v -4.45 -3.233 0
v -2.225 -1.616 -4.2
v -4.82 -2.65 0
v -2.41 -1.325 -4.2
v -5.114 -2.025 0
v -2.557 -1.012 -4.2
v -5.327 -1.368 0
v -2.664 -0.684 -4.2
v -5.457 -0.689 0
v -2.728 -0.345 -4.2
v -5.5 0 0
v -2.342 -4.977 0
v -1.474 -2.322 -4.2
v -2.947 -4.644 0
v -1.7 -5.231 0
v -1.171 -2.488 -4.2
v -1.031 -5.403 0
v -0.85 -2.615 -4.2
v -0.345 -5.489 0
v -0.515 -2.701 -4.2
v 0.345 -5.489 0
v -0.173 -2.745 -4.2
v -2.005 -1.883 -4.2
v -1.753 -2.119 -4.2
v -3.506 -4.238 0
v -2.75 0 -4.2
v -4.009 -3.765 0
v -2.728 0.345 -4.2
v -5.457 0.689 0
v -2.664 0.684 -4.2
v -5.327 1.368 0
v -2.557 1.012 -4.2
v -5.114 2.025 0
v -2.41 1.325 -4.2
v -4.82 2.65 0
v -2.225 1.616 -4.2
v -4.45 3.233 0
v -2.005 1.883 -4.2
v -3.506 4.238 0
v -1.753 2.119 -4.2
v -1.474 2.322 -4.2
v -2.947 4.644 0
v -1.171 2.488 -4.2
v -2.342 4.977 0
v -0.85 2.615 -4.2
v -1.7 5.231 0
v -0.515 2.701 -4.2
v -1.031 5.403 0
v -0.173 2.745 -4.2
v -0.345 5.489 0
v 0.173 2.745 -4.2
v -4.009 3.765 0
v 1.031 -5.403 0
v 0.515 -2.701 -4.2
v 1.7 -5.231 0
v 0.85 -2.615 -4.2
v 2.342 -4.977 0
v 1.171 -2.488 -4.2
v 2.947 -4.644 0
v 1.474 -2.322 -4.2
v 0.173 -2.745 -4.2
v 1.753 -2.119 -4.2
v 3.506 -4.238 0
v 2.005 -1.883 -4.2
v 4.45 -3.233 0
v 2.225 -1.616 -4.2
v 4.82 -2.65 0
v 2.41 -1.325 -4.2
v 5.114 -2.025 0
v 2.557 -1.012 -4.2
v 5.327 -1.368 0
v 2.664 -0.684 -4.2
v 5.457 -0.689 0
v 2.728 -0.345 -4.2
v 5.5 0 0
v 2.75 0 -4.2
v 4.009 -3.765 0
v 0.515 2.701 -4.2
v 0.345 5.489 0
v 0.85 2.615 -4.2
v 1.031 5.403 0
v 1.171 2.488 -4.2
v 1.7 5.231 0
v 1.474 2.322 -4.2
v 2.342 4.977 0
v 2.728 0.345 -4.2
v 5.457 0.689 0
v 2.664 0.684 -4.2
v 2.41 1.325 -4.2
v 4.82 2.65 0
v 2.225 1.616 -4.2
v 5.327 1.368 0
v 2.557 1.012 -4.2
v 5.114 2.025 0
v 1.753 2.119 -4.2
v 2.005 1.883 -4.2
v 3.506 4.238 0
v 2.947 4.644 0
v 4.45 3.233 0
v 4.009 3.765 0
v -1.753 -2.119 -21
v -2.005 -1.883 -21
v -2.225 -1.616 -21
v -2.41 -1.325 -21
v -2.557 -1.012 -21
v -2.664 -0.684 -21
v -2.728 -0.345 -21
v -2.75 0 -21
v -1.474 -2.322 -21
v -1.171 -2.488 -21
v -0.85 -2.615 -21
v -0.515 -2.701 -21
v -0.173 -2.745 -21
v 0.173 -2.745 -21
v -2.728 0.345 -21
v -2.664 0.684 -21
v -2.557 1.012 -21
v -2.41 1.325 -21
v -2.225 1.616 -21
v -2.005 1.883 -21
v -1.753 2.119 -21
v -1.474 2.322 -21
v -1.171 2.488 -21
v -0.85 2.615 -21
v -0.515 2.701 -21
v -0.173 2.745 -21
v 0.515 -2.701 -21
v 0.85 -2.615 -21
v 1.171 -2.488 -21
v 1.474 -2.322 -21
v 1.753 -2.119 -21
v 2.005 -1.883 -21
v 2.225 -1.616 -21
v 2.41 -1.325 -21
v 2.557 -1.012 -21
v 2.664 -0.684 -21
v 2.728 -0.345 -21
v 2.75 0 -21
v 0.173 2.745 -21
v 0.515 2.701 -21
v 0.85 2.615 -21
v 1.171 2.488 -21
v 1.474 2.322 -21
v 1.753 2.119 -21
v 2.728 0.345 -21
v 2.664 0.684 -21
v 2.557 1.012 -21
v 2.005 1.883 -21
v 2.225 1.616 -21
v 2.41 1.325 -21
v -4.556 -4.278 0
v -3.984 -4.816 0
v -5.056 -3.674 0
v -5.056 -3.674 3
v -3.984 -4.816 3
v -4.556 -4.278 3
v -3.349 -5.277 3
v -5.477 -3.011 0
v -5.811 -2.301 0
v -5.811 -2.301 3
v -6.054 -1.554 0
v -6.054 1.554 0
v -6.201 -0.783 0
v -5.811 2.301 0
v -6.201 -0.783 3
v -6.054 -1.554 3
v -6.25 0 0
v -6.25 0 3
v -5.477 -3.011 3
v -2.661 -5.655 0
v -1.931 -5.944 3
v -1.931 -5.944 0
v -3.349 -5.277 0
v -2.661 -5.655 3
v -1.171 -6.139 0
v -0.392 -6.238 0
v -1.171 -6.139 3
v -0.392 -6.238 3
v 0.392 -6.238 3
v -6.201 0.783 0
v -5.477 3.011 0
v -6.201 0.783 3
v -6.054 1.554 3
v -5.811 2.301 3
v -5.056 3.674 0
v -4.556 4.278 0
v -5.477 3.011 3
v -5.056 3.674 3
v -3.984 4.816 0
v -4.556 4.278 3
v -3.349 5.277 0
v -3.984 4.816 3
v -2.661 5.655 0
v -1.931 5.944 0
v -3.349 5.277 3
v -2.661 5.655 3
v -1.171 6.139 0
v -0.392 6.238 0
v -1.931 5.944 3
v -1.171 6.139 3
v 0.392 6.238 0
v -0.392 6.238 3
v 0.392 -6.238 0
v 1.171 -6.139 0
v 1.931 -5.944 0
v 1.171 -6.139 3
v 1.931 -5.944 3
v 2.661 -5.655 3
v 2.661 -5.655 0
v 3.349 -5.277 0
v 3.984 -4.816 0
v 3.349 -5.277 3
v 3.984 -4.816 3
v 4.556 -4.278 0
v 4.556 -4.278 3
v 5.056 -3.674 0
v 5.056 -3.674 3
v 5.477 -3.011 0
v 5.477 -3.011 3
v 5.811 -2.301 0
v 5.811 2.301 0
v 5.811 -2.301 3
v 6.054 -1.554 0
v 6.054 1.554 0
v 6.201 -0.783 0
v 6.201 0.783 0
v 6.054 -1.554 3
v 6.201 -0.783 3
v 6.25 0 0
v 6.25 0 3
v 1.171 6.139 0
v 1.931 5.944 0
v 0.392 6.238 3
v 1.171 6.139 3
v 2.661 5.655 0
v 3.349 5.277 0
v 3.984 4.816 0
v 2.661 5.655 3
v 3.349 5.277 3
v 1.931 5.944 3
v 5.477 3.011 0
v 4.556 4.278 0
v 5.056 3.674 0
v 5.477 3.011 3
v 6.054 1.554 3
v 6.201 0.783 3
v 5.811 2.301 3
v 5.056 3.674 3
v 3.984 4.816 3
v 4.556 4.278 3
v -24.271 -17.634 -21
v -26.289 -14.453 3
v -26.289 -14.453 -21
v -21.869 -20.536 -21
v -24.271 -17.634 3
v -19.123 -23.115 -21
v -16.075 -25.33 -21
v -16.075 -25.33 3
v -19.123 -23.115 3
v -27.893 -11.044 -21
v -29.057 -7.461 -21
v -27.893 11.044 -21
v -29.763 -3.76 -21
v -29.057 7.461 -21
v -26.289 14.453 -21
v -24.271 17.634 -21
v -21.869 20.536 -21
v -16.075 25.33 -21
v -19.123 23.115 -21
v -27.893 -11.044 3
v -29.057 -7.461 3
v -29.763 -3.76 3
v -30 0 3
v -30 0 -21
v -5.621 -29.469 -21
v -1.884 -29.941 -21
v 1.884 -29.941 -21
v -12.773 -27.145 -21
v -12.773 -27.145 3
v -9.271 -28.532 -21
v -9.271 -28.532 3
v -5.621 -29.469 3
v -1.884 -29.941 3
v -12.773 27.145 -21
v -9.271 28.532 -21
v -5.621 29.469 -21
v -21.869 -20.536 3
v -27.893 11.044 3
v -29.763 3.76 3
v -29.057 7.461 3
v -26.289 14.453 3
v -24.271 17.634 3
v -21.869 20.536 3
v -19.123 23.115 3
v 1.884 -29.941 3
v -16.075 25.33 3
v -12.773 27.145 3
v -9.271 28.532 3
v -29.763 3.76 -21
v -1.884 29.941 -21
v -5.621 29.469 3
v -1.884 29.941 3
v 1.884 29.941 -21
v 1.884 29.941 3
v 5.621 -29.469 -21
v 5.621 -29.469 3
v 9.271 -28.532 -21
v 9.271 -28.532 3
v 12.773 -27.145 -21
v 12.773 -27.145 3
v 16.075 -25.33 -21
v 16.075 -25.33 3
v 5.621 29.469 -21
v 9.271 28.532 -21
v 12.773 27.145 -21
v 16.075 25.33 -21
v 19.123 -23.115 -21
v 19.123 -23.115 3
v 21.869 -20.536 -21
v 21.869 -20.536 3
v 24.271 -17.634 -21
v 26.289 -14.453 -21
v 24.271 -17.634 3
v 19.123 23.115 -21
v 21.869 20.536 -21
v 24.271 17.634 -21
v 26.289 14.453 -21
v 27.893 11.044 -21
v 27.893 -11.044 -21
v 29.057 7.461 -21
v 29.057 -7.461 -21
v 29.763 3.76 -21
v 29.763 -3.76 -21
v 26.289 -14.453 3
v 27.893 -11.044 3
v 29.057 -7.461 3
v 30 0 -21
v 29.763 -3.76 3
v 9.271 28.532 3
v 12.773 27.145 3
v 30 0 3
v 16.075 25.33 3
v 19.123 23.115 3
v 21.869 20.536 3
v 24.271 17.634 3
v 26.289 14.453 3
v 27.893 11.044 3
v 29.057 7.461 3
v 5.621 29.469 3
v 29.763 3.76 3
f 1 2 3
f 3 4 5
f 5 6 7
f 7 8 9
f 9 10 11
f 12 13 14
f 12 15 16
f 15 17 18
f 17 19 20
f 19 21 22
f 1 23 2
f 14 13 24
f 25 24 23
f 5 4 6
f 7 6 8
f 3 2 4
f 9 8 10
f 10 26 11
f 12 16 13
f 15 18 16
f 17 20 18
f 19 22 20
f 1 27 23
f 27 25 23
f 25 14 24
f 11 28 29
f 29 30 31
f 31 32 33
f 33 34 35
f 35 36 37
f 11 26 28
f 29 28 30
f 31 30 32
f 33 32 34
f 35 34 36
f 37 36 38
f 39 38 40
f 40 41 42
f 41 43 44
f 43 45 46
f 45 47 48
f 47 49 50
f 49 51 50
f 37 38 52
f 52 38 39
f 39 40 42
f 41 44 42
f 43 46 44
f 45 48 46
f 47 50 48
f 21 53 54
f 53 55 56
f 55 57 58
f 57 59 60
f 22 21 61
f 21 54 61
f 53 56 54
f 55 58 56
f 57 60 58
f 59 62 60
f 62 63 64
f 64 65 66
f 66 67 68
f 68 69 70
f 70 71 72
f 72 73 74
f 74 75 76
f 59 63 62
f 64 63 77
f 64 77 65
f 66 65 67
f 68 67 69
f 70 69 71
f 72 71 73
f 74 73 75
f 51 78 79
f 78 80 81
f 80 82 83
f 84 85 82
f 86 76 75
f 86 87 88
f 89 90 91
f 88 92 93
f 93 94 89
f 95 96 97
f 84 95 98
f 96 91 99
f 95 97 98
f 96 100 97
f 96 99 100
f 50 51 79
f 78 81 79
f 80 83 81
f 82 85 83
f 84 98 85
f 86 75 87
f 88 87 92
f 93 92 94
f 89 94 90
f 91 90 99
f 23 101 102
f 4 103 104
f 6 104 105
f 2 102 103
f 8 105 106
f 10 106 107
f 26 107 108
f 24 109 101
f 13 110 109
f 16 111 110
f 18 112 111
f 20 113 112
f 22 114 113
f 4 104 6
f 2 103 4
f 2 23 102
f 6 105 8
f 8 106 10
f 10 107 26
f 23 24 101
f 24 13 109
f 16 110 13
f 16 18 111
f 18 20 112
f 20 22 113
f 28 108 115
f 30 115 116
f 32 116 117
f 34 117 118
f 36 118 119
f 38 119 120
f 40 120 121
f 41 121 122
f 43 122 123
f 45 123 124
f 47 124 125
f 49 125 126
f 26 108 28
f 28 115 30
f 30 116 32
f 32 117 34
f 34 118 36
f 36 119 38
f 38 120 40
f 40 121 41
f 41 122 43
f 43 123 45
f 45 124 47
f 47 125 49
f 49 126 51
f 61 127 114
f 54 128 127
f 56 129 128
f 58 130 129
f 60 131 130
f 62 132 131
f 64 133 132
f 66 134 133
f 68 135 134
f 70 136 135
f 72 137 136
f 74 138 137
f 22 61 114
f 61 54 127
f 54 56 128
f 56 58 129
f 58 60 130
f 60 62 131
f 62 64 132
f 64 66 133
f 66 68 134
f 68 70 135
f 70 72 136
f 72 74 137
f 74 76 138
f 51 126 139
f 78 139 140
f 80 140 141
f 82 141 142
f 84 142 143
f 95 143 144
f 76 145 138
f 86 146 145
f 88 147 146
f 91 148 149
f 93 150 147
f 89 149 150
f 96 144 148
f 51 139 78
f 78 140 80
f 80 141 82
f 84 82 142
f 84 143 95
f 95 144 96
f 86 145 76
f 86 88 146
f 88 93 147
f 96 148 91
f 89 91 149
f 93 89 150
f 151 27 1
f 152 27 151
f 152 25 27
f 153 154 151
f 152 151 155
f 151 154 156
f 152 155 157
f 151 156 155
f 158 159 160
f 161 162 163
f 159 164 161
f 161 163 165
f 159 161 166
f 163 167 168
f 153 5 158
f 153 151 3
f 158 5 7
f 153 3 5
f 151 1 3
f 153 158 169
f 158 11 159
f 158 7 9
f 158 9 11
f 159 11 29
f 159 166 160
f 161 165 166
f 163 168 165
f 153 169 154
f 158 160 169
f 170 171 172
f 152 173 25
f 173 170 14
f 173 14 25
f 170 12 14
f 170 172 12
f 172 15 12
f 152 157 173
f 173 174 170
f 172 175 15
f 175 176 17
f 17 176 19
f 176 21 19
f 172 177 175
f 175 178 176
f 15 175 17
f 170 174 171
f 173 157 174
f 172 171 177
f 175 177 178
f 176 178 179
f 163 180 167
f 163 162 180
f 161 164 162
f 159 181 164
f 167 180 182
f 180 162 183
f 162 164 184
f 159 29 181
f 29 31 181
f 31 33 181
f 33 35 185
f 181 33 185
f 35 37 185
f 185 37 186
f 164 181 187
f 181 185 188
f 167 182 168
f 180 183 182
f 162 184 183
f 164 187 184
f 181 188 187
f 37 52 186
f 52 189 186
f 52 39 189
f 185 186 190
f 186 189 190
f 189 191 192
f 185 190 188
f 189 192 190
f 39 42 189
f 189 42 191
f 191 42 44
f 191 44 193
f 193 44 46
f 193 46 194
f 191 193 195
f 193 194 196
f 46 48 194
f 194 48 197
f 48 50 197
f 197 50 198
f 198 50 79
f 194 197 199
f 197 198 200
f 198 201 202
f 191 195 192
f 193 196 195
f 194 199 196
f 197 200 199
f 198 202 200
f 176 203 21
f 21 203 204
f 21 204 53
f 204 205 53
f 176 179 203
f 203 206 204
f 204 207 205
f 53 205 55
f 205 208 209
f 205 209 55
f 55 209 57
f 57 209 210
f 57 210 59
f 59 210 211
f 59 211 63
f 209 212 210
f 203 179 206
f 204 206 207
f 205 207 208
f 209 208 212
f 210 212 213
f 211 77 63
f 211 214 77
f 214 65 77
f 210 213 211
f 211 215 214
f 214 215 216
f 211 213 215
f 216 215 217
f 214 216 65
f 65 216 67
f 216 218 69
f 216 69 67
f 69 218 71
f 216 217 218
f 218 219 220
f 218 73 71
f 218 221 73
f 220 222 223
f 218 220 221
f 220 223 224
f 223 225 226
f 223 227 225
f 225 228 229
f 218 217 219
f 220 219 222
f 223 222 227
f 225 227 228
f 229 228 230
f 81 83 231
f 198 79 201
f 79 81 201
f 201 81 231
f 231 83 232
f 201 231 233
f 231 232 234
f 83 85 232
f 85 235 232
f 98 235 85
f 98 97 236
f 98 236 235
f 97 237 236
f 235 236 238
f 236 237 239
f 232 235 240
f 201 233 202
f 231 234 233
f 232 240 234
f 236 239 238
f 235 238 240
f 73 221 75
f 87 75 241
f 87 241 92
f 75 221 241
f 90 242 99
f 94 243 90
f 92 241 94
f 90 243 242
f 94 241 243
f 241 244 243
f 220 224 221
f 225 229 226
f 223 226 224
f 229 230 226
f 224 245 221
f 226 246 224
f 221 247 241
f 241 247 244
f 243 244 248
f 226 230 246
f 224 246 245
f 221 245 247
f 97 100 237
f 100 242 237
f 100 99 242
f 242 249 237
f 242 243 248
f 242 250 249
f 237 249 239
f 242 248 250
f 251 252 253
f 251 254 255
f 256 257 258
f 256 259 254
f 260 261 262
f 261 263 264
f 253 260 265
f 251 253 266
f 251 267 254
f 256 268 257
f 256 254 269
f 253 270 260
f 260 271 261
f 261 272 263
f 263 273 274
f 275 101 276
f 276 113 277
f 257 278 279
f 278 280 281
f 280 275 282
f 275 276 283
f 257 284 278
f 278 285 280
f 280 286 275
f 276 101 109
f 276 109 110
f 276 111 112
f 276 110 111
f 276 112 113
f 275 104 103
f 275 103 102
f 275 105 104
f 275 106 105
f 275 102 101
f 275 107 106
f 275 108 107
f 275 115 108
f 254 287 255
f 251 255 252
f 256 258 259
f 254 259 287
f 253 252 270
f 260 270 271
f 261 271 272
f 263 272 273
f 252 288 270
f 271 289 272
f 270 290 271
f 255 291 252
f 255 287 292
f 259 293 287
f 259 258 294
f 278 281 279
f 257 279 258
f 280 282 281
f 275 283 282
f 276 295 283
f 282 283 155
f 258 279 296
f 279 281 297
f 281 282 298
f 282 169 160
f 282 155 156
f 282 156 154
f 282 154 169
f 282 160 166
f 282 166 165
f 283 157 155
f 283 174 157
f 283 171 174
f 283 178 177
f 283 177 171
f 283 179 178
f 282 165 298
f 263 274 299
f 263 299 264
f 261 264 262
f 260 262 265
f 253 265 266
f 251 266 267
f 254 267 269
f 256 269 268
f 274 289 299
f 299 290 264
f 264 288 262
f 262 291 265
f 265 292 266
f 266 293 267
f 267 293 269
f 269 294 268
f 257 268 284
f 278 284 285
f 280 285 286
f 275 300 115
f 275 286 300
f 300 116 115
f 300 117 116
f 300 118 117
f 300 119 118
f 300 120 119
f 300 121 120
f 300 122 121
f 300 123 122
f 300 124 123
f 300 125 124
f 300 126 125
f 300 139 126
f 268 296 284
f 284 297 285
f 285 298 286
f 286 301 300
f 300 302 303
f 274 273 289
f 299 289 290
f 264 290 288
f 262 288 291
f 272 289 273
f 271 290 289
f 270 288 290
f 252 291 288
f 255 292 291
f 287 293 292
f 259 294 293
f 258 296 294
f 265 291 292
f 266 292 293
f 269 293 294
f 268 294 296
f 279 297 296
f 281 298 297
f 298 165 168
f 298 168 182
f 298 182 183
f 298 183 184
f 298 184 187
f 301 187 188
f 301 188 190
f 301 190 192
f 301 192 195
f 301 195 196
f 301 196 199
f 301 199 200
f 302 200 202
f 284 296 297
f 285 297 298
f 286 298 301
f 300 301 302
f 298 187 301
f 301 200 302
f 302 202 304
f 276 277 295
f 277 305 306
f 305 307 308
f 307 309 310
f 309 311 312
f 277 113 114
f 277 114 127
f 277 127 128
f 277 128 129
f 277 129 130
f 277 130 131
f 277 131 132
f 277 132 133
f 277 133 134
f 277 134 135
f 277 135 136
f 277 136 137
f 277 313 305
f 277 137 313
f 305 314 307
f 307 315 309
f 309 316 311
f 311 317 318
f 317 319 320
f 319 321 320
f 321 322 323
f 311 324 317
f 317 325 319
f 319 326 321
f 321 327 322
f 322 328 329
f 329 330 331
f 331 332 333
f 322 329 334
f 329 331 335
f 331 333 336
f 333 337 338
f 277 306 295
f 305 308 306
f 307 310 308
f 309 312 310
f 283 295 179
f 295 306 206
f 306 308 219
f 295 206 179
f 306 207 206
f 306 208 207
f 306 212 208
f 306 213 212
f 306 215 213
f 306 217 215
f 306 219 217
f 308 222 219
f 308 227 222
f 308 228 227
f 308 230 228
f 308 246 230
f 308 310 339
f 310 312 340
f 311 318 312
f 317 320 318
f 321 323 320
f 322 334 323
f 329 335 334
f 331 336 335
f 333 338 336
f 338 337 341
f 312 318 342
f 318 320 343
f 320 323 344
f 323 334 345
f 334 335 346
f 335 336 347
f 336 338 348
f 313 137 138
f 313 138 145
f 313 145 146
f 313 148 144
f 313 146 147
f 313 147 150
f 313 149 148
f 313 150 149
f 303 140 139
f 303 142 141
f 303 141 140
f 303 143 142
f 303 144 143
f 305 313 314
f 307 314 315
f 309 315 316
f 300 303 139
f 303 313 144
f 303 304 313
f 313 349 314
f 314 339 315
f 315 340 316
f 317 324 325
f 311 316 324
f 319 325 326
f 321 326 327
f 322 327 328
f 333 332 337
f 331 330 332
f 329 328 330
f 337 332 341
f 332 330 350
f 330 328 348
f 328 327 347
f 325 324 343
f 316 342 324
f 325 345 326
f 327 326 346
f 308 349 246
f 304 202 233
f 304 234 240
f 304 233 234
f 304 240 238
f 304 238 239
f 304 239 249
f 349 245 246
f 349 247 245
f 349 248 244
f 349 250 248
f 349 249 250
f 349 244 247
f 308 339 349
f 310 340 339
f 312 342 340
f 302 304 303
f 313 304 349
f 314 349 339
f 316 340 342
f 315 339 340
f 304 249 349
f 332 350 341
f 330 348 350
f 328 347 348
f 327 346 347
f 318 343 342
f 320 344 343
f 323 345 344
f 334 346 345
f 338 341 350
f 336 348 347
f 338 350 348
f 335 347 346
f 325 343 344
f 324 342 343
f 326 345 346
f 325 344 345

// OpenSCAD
$fn = 50;


difference() {
	union() {
		translate(v = [0, 0, -21.0000000000]) {
			cylinder(h = 24, r = 30.0000000000);
		}
	}
	union() {
		translate(v = [0, 0, 0]) {
			rotate(a = [0, 0, 0]) {
				difference() {
					union() {
						translate(v = [0, 0, -24.0000000000]) {
							cylinder(h = 24, r = 2.2500000000);
						}
						translate(v = [0, 0, -4.2000000000]) {
							cylinder(h = 4.2000000000, r1 = 2.7500000000, r2 = 5.5000000000);
						}
						translate(v = [0, 0, -24.0000000000]) {
							cylinder(h = 24, r = 2.7500000000);
						}
						translate(v = [0, 0, -24.0000000000]) {
							cylinder(h = 24, r = 2.2500000000);
						}
					}
					union();
				}
			}
		}
		#cylinder(h = 3, r = 6.2500000000);
	}
}
